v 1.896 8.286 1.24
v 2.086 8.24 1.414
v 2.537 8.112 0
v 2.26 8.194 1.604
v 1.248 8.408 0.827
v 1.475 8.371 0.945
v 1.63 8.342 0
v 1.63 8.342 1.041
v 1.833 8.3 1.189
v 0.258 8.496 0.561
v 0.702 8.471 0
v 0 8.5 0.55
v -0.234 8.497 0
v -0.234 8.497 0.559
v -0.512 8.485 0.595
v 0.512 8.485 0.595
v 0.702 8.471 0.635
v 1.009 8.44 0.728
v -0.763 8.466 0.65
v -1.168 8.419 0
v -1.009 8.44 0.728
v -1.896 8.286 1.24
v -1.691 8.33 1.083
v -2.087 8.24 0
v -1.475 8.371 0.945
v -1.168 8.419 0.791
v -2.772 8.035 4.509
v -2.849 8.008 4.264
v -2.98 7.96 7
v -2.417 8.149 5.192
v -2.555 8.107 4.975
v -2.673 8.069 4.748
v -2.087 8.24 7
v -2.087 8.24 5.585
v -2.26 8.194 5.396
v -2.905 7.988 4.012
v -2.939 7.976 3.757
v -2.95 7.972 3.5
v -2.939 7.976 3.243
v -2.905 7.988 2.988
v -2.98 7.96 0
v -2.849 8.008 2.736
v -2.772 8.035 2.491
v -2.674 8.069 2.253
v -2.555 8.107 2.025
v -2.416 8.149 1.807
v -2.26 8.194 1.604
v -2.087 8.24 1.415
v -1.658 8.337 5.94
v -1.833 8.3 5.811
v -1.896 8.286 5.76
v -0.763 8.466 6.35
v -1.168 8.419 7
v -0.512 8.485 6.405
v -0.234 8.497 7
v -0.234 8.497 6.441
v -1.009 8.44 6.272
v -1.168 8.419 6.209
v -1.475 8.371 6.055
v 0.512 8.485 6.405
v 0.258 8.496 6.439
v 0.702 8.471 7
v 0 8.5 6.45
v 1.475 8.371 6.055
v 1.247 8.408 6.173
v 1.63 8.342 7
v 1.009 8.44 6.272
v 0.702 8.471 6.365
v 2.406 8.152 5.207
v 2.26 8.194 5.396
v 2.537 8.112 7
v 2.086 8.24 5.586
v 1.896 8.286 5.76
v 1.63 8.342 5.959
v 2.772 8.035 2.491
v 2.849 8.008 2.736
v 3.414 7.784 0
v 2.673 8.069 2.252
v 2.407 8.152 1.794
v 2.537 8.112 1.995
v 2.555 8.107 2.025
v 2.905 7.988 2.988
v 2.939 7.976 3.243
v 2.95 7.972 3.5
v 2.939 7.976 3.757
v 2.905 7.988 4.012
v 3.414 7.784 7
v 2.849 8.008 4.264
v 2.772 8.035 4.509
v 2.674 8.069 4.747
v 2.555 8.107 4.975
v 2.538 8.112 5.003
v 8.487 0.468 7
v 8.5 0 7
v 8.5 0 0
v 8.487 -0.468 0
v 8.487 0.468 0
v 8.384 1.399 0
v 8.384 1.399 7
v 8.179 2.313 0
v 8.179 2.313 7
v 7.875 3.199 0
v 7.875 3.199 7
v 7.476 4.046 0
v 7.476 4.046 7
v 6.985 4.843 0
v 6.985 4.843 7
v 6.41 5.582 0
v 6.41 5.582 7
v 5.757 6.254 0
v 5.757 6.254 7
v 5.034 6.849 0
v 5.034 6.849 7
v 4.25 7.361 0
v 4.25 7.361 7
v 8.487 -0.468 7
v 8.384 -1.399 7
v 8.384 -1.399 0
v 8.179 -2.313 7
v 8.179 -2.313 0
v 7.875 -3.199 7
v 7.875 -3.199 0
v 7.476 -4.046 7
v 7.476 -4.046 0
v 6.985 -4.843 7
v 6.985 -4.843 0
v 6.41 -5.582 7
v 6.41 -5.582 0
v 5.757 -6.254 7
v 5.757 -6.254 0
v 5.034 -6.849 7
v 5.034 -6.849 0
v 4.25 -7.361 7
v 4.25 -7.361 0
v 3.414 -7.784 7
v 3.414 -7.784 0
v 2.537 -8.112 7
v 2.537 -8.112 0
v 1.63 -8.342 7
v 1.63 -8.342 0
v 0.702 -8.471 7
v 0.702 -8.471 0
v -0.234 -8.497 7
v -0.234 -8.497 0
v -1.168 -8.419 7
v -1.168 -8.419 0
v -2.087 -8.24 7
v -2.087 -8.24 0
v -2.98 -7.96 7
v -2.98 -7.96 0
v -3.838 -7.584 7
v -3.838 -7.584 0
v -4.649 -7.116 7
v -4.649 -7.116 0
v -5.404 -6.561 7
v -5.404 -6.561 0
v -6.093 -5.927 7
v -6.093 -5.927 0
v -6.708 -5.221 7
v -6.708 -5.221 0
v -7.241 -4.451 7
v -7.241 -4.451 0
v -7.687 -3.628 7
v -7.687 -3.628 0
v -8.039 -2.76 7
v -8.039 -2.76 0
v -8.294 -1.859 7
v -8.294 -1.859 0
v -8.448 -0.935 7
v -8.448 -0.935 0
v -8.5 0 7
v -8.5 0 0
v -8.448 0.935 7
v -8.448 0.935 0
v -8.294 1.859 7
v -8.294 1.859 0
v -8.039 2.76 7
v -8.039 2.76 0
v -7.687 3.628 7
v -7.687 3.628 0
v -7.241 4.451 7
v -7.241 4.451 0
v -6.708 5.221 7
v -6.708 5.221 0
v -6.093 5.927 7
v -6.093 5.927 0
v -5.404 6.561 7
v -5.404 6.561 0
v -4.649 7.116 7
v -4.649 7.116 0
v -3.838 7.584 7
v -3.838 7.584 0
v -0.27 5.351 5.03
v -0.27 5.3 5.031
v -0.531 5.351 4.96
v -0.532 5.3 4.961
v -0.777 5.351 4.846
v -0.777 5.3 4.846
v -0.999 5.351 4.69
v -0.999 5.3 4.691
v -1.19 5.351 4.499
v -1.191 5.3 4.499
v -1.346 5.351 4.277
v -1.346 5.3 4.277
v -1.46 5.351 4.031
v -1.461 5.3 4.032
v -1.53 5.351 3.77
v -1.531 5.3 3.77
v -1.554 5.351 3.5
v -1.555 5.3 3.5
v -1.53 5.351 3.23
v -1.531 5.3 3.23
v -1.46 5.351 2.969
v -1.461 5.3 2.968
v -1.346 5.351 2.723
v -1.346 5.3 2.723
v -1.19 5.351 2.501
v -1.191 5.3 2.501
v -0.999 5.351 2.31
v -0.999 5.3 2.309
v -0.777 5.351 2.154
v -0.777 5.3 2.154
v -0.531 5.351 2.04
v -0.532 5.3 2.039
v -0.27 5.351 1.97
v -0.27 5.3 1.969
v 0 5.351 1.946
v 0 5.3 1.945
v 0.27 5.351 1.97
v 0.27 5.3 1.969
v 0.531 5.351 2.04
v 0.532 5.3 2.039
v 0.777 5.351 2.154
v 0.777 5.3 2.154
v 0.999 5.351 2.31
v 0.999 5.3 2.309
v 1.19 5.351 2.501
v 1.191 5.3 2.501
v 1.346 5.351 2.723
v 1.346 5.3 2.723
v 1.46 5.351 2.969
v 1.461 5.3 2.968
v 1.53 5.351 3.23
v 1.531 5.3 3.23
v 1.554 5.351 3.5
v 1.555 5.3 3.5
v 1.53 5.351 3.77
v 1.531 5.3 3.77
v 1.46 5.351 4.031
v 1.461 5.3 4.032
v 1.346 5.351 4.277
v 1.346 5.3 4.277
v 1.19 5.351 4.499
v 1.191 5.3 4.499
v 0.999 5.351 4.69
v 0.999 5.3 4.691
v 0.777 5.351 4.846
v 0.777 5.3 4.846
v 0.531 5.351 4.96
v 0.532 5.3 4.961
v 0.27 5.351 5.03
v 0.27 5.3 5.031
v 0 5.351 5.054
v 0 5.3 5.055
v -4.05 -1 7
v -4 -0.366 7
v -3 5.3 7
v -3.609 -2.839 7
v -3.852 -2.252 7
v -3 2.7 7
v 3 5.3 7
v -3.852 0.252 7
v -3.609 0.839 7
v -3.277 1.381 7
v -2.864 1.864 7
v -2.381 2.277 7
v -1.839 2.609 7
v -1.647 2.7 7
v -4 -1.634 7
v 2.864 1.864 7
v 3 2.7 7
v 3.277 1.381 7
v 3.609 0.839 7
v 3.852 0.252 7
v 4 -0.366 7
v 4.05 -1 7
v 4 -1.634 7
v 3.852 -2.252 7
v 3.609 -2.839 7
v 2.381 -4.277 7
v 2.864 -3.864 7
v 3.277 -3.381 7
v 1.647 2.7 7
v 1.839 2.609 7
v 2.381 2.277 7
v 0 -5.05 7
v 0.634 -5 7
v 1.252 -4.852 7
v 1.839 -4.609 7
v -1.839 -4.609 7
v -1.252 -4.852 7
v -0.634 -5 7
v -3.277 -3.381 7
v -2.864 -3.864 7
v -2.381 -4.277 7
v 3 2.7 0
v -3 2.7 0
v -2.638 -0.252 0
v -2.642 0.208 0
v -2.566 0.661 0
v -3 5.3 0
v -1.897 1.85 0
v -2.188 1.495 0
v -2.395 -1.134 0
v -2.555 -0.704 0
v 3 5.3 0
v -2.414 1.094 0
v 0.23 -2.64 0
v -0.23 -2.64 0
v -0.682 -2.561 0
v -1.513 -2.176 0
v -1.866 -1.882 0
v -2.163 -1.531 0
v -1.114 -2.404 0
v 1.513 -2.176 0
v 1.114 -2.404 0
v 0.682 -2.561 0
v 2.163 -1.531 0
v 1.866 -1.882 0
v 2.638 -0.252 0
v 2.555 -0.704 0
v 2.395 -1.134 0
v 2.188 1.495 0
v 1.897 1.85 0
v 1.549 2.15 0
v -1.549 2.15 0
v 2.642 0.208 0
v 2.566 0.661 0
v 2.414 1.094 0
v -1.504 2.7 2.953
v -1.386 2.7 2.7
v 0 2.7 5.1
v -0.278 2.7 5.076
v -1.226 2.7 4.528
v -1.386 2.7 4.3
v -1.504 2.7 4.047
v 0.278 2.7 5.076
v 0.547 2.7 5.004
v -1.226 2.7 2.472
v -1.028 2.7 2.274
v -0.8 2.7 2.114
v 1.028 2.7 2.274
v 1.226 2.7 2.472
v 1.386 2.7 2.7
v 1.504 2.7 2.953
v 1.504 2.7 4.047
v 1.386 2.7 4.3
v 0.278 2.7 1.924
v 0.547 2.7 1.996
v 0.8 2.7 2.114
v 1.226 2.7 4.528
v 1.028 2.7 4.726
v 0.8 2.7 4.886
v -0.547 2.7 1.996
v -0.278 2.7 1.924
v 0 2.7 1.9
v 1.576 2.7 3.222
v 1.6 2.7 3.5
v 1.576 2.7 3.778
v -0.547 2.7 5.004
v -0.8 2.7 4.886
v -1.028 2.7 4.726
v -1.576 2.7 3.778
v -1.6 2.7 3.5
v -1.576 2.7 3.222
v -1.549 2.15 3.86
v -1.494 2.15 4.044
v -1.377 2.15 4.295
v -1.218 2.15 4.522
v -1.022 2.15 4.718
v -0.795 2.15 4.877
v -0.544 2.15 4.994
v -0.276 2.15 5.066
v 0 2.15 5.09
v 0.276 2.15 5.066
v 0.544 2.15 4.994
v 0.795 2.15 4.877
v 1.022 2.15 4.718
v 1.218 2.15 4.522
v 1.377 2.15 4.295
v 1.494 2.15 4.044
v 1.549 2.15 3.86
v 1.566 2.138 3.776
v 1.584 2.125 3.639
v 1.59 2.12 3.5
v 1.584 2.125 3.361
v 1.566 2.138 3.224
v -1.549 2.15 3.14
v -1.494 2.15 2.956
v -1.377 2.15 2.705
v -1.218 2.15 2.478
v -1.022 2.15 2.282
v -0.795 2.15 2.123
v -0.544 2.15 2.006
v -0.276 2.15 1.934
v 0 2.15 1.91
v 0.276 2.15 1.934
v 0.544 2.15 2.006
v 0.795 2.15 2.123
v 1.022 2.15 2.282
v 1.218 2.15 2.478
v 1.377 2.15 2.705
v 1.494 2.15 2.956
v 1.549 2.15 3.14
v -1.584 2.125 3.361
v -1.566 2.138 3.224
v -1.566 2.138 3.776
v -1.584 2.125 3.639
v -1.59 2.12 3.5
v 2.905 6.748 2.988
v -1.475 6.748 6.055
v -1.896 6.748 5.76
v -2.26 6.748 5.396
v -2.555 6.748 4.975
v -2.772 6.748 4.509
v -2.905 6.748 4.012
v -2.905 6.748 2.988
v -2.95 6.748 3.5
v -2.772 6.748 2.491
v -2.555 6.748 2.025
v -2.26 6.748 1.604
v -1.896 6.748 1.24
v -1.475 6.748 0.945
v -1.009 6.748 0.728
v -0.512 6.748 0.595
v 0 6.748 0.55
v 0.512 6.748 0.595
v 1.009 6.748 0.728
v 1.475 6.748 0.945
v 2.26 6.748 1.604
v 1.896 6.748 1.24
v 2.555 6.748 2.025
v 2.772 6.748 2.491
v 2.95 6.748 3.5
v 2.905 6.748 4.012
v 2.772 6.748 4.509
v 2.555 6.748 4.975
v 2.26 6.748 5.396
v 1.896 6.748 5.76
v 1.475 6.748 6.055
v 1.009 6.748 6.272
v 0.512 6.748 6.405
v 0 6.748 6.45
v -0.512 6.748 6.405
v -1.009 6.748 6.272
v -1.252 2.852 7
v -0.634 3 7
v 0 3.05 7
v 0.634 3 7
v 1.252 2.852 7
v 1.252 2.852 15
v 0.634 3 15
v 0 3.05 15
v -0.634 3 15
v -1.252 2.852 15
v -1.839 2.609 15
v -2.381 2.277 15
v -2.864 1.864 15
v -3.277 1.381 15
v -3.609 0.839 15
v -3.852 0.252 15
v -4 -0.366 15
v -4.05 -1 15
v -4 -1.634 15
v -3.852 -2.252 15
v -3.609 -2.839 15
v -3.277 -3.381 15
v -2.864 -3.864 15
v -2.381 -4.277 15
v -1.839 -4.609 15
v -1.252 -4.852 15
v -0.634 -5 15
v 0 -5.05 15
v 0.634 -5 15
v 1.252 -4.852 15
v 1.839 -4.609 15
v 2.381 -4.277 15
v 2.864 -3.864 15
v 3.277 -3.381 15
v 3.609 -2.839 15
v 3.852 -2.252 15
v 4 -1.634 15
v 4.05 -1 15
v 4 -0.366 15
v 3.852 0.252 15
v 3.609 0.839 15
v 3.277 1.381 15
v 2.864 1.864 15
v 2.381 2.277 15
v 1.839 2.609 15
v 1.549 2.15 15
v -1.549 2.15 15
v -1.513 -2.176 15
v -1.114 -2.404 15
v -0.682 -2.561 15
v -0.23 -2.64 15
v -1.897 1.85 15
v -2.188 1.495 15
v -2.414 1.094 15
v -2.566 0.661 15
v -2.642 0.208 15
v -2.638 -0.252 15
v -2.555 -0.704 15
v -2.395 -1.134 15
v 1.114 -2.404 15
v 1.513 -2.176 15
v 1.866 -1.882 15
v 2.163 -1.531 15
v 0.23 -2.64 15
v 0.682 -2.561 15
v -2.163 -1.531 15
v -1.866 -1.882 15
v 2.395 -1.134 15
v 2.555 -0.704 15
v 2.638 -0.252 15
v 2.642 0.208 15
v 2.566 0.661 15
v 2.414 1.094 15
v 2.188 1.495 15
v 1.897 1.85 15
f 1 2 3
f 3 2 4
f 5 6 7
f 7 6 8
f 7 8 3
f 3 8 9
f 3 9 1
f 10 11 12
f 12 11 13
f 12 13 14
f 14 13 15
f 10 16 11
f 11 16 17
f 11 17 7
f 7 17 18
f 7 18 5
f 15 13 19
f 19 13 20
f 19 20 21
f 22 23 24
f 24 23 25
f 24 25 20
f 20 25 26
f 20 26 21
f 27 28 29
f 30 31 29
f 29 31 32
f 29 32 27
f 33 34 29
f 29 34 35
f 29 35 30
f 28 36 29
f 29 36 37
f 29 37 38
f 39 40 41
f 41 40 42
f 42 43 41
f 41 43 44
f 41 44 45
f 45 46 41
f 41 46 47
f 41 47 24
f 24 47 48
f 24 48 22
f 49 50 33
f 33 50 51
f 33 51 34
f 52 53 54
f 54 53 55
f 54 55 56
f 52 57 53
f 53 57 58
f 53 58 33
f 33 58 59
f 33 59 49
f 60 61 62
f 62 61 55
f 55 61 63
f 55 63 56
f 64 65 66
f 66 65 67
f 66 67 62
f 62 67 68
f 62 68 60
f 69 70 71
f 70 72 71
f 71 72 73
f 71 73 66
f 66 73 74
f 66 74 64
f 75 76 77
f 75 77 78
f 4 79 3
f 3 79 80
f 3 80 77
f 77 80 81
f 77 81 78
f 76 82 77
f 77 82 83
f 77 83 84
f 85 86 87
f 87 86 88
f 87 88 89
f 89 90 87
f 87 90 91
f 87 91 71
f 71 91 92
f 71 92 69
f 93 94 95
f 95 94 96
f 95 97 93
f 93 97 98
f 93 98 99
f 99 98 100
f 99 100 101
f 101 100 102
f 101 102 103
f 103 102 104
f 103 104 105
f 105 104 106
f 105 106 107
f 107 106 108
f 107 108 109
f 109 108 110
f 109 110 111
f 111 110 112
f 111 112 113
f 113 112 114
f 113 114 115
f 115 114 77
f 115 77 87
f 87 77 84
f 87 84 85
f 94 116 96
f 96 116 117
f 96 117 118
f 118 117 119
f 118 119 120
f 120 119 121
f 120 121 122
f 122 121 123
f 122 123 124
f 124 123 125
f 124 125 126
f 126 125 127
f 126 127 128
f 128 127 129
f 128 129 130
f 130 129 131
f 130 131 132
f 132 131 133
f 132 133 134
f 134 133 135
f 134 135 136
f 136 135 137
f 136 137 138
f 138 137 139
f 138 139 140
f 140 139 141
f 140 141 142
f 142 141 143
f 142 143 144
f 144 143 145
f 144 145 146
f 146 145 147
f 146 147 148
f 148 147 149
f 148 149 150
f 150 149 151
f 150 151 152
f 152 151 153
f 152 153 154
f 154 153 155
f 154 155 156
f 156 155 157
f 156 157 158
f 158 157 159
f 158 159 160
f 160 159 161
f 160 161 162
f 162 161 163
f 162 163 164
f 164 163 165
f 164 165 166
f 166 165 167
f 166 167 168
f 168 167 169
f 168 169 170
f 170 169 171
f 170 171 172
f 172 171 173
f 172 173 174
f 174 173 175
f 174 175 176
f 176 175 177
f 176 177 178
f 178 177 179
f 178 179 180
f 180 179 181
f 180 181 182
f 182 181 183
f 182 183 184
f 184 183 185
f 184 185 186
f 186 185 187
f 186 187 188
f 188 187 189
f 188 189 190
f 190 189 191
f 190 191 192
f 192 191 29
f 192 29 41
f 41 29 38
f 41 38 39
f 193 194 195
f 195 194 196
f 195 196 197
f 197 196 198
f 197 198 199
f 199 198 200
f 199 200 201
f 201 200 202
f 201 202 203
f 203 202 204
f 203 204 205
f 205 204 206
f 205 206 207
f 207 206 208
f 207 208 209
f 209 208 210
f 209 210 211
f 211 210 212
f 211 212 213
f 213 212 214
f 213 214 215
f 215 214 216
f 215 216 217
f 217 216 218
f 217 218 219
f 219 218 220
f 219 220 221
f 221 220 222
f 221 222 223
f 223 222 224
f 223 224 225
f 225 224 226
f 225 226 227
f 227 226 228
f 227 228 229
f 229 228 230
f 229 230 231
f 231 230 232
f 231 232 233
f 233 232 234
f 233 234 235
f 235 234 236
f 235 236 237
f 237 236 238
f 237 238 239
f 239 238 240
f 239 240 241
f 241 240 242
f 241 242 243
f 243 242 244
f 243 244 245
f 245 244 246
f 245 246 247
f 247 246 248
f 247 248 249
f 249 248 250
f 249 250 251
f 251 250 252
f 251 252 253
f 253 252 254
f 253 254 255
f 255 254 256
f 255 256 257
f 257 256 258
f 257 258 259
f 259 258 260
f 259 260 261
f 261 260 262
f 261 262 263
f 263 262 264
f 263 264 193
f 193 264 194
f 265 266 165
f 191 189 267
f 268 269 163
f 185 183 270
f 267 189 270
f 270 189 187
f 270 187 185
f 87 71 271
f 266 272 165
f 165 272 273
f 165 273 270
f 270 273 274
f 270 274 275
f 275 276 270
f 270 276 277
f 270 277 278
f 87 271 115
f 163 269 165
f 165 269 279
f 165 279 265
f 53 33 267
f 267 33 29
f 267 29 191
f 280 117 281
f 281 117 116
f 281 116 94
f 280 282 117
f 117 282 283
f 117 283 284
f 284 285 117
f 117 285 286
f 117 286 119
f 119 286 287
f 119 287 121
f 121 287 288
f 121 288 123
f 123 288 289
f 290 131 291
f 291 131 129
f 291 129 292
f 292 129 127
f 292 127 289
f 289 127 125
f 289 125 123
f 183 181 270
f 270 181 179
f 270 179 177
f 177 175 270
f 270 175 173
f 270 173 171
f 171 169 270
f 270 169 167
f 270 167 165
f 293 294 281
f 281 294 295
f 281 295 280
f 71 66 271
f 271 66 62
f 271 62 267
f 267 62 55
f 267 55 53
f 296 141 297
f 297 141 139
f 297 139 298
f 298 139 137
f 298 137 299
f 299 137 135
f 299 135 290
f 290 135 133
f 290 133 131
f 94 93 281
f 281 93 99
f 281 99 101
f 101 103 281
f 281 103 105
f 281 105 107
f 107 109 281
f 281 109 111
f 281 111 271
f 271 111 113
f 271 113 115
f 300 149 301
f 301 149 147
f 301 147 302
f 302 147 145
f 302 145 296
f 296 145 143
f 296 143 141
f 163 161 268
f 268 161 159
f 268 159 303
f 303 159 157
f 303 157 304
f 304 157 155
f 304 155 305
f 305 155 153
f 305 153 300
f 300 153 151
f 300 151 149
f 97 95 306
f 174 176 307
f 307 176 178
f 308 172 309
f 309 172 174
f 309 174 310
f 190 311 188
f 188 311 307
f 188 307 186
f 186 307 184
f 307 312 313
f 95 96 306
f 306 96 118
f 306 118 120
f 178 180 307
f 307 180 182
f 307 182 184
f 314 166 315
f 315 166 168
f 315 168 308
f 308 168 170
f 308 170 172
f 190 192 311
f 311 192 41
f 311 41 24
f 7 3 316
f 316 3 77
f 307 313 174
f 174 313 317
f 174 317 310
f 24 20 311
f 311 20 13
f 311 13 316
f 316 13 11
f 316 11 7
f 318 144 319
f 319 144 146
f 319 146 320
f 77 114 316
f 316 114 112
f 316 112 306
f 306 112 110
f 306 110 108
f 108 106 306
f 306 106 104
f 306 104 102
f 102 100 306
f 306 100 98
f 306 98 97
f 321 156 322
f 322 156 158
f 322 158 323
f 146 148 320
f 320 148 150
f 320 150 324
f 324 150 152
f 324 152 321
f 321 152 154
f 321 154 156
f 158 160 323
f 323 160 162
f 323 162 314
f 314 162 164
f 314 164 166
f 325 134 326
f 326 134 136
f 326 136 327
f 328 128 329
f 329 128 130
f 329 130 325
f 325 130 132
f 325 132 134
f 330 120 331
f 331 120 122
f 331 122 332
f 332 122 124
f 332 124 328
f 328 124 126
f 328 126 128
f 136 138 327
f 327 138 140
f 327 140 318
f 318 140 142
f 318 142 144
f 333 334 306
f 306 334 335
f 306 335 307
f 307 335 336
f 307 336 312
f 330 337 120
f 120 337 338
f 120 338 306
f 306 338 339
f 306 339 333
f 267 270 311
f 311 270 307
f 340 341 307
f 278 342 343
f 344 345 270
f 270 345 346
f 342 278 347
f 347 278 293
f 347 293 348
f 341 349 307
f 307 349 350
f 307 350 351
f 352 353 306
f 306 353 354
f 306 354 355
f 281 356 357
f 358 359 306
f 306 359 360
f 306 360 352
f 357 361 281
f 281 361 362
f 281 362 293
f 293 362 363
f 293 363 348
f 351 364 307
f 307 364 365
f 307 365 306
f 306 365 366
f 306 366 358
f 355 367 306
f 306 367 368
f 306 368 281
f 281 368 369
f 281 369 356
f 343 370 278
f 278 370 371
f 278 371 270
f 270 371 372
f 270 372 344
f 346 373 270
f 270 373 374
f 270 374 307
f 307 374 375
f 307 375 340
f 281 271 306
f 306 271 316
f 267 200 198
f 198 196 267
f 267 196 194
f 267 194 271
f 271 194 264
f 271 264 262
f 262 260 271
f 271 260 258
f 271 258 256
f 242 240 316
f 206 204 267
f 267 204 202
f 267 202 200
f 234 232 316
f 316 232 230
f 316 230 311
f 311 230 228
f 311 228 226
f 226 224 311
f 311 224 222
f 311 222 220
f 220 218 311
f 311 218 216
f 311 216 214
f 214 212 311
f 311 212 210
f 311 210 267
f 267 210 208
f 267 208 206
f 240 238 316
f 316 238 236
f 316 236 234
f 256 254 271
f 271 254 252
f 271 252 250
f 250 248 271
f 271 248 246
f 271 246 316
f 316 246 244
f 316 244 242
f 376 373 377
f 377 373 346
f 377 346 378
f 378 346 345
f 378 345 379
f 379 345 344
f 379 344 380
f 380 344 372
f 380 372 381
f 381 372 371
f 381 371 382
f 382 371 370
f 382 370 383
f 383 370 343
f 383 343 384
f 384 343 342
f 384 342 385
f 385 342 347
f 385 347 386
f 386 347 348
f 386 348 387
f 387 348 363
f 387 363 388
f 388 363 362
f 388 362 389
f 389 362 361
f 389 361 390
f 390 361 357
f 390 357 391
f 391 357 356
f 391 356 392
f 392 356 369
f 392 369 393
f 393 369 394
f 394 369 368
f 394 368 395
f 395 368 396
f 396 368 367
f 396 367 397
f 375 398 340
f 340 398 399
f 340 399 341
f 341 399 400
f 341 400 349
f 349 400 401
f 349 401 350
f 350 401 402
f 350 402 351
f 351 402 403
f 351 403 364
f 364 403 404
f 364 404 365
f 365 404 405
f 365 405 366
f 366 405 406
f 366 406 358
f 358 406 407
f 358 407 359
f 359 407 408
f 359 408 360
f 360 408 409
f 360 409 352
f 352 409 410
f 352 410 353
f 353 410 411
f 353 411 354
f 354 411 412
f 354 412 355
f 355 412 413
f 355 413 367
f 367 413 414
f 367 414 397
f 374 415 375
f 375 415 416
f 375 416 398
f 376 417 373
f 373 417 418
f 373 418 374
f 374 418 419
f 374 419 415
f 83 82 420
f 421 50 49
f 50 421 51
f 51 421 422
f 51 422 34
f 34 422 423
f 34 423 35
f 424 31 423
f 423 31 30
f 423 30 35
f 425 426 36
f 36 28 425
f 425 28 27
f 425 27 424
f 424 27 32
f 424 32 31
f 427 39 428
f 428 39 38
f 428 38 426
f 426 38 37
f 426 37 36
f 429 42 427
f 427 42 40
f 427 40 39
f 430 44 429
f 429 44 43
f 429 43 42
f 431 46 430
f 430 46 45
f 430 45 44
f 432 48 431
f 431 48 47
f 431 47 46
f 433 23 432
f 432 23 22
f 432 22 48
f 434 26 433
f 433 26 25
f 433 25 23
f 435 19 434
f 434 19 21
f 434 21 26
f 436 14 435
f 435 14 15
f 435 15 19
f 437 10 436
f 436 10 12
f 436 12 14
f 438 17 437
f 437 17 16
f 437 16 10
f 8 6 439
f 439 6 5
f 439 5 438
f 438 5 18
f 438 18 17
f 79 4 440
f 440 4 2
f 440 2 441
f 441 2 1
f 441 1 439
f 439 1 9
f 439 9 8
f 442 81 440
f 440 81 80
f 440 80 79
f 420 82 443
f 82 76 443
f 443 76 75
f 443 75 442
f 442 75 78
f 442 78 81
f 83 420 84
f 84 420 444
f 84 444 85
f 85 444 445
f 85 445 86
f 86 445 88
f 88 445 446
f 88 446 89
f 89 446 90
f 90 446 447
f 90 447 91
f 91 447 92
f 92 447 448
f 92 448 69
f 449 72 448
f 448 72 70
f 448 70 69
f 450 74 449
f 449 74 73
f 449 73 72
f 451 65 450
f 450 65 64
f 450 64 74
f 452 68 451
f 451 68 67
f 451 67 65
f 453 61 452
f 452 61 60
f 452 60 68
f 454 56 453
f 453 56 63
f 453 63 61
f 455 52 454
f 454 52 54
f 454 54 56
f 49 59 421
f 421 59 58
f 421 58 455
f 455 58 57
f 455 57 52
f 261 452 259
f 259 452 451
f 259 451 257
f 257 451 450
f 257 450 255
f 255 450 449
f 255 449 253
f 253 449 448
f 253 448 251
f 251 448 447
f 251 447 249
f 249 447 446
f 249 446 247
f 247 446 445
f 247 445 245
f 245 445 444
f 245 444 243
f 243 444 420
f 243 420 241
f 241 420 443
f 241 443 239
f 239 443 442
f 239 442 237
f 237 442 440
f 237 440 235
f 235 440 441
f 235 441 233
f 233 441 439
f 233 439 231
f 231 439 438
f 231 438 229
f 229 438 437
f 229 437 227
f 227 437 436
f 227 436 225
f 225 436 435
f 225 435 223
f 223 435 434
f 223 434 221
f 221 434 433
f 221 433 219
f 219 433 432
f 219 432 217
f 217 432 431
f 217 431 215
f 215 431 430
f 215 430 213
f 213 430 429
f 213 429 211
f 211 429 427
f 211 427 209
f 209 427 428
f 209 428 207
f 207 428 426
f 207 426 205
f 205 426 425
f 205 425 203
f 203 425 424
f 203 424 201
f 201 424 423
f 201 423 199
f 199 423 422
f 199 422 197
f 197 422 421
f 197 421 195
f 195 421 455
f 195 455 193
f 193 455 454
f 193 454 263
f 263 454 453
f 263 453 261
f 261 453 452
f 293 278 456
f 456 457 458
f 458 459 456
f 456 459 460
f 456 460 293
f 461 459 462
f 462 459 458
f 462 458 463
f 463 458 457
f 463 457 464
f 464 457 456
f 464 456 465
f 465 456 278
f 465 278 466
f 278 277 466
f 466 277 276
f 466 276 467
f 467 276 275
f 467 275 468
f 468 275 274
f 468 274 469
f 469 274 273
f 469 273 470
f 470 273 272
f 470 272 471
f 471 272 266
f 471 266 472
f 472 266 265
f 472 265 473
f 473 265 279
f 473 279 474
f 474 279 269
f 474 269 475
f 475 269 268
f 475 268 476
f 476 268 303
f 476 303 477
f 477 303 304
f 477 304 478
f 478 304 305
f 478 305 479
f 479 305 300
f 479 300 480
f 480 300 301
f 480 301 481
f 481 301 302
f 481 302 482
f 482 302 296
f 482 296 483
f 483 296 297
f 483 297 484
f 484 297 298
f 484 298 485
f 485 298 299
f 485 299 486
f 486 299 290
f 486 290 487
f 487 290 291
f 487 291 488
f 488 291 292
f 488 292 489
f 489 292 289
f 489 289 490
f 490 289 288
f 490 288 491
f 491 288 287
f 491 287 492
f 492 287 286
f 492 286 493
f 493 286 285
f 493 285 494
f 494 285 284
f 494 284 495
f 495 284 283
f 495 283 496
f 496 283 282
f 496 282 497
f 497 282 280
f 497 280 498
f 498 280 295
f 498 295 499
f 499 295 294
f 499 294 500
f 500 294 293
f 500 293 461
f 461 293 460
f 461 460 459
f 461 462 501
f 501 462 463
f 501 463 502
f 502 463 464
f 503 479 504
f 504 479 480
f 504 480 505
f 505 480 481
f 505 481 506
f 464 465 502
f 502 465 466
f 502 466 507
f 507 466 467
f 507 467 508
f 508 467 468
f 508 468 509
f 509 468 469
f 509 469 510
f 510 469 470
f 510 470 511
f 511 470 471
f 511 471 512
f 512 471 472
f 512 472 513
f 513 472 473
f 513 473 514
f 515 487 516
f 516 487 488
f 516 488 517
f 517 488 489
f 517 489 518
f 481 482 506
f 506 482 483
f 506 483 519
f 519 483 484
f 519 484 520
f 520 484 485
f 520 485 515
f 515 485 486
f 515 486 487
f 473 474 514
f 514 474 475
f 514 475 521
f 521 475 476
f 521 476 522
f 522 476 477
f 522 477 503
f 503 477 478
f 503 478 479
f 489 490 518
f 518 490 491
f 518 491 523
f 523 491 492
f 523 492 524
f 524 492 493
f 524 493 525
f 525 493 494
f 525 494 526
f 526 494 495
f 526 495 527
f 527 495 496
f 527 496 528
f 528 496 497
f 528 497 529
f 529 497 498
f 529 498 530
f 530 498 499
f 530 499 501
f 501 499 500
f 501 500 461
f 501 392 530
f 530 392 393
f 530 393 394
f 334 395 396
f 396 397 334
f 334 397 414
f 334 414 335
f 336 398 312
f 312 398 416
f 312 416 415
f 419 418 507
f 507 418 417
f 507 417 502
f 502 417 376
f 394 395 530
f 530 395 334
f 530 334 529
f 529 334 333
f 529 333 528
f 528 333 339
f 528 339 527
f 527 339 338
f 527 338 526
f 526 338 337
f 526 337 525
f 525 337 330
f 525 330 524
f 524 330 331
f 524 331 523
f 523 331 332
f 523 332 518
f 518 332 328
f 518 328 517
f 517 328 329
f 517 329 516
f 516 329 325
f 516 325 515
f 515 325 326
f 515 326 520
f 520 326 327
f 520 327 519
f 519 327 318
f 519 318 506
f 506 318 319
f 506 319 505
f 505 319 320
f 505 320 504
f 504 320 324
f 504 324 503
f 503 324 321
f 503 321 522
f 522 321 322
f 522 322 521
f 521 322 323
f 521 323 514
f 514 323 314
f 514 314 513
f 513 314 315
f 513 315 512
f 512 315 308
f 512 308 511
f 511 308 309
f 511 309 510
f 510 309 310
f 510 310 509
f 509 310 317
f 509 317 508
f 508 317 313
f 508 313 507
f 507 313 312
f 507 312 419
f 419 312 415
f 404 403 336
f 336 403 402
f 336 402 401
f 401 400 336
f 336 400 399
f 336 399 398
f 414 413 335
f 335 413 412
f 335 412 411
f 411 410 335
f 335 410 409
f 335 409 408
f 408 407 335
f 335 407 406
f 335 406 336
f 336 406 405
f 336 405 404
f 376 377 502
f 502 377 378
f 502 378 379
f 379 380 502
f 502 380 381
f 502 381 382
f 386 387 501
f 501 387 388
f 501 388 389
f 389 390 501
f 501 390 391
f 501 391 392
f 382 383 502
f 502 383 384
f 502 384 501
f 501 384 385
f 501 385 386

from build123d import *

# Parameters (mm, degrees)
ESQUISSE1_R             = 8.5
BOSS_EXTRU_1_DEPTH      = 7
ESQUISSE2_W             = 6
ESQUISSE2_H             = 2.6
ENL_V_MAT_EXTRU_1_DEPTH = 14.910427743
ESQUISSE7_R             = 2.95
ENL_V_MAT_EXTRU_8_DEPTH = 21.087060672
ESQUISSE9_R             = 4.05
BOSS_EXTRU_2_DEPTH      = 8
ENL_V_MAT_EXTRU_9_DEPTH = 20.222382876


with BuildPart() as part:
    # Esquisse1 → Boss.-Extru.1 (new body)
    with BuildSketch(Plane.XY):
        Circle(ESQUISSE1_R)
    extrude(amount=BOSS_EXTRU_1_DEPTH)

    # Esquisse2 → Enlèv. mat.-Extru.1 (cut, through all)
    with BuildSketch(Plane(origin=(0, 0, 0), x_dir=(-1, 0, 0), z_dir=(0, 0, -1))):
        with Locations((0, 4)):
            Rectangle(ESQUISSE2_W, ESQUISSE2_H)
    extrude(amount=-ENL_V_MAT_EXTRU_1_DEPTH, mode=Mode.SUBTRACT)

    # Enlèv. mat.-Extru.2: read off the stored shape, not the designer's step
    # Enlèv. mat.-Extru.2 outline → Enlèv. mat.-Extru.2 (revolve, cut)
    with BuildSketch(Plane.XY.offset(3.5)):
        Polygon((0, 5.3), (1.554616831, 5.3), (1.498760014, 8.500034923), (0, 8.500034923), align=None)
        Polygon((1.6, 2.7), (0, 2.7), (0, 0.7), (1.56508987, 0.7), align=None)
    revolve(axis=Axis((0, 0, 3.5), (0, 1, 0)), mode=Mode.SUBTRACT)

    # Esquisse7 → Enlèv. mat.-Extru.8 (cut, through all)
    with BuildSketch(Plane(origin=(0, 8.3, 0), x_dir=(1, 0, 0), z_dir=(0, 1, 0))):
        with Locations((0, -3.5)):
            Circle(ESQUISSE7_R)
    extrude(amount=ENL_V_MAT_EXTRU_8_DEPTH, mode=Mode.SUBTRACT)

    # Chanfrein1: read off the stored shape, not the designer's step
    # Chanfrein1 outline → Chanfrein1 (revolve, cut)
    with BuildSketch(Plane.XY.offset(3.5)):
        Polygon((2.95, 6.747748364), (2.95, 8.3), (1.502251636, 8.3), (1.553718474, 5.351466838), align=None)
    revolve(axis=Axis((0, 0, 3.5), (0, 1, 0)), mode=Mode.SUBTRACT)

    # Esquisse9 → Boss.-Extru.2 (add)
    with BuildSketch(Plane.XY.offset(7)):
        with Locations(Location((0, -1, 0), (0, 0, 113.995098868))):
            Circle(ESQUISSE9_R)
    extrude(amount=BOSS_EXTRU_2_DEPTH)

    # Esquisse10 → Enlèv. mat.-Extru.9 (cut, through all)
    with BuildSketch(Plane(origin=(0, 0, 0), x_dir=(-1, 0, 0), z_dir=(0, 0, -1))):
        with BuildLine():
            Line((-1.549193338, 2.15), (1.549193338, 2.15))
            ThreePointArc((1.549193338, 2.15), (0, -2.65), (-1.549193338, 2.15))
        make_face()
    extrude(amount=-ENL_V_MAT_EXTRU_9_DEPTH, mode=Mode.SUBTRACT)


solid = part.part
